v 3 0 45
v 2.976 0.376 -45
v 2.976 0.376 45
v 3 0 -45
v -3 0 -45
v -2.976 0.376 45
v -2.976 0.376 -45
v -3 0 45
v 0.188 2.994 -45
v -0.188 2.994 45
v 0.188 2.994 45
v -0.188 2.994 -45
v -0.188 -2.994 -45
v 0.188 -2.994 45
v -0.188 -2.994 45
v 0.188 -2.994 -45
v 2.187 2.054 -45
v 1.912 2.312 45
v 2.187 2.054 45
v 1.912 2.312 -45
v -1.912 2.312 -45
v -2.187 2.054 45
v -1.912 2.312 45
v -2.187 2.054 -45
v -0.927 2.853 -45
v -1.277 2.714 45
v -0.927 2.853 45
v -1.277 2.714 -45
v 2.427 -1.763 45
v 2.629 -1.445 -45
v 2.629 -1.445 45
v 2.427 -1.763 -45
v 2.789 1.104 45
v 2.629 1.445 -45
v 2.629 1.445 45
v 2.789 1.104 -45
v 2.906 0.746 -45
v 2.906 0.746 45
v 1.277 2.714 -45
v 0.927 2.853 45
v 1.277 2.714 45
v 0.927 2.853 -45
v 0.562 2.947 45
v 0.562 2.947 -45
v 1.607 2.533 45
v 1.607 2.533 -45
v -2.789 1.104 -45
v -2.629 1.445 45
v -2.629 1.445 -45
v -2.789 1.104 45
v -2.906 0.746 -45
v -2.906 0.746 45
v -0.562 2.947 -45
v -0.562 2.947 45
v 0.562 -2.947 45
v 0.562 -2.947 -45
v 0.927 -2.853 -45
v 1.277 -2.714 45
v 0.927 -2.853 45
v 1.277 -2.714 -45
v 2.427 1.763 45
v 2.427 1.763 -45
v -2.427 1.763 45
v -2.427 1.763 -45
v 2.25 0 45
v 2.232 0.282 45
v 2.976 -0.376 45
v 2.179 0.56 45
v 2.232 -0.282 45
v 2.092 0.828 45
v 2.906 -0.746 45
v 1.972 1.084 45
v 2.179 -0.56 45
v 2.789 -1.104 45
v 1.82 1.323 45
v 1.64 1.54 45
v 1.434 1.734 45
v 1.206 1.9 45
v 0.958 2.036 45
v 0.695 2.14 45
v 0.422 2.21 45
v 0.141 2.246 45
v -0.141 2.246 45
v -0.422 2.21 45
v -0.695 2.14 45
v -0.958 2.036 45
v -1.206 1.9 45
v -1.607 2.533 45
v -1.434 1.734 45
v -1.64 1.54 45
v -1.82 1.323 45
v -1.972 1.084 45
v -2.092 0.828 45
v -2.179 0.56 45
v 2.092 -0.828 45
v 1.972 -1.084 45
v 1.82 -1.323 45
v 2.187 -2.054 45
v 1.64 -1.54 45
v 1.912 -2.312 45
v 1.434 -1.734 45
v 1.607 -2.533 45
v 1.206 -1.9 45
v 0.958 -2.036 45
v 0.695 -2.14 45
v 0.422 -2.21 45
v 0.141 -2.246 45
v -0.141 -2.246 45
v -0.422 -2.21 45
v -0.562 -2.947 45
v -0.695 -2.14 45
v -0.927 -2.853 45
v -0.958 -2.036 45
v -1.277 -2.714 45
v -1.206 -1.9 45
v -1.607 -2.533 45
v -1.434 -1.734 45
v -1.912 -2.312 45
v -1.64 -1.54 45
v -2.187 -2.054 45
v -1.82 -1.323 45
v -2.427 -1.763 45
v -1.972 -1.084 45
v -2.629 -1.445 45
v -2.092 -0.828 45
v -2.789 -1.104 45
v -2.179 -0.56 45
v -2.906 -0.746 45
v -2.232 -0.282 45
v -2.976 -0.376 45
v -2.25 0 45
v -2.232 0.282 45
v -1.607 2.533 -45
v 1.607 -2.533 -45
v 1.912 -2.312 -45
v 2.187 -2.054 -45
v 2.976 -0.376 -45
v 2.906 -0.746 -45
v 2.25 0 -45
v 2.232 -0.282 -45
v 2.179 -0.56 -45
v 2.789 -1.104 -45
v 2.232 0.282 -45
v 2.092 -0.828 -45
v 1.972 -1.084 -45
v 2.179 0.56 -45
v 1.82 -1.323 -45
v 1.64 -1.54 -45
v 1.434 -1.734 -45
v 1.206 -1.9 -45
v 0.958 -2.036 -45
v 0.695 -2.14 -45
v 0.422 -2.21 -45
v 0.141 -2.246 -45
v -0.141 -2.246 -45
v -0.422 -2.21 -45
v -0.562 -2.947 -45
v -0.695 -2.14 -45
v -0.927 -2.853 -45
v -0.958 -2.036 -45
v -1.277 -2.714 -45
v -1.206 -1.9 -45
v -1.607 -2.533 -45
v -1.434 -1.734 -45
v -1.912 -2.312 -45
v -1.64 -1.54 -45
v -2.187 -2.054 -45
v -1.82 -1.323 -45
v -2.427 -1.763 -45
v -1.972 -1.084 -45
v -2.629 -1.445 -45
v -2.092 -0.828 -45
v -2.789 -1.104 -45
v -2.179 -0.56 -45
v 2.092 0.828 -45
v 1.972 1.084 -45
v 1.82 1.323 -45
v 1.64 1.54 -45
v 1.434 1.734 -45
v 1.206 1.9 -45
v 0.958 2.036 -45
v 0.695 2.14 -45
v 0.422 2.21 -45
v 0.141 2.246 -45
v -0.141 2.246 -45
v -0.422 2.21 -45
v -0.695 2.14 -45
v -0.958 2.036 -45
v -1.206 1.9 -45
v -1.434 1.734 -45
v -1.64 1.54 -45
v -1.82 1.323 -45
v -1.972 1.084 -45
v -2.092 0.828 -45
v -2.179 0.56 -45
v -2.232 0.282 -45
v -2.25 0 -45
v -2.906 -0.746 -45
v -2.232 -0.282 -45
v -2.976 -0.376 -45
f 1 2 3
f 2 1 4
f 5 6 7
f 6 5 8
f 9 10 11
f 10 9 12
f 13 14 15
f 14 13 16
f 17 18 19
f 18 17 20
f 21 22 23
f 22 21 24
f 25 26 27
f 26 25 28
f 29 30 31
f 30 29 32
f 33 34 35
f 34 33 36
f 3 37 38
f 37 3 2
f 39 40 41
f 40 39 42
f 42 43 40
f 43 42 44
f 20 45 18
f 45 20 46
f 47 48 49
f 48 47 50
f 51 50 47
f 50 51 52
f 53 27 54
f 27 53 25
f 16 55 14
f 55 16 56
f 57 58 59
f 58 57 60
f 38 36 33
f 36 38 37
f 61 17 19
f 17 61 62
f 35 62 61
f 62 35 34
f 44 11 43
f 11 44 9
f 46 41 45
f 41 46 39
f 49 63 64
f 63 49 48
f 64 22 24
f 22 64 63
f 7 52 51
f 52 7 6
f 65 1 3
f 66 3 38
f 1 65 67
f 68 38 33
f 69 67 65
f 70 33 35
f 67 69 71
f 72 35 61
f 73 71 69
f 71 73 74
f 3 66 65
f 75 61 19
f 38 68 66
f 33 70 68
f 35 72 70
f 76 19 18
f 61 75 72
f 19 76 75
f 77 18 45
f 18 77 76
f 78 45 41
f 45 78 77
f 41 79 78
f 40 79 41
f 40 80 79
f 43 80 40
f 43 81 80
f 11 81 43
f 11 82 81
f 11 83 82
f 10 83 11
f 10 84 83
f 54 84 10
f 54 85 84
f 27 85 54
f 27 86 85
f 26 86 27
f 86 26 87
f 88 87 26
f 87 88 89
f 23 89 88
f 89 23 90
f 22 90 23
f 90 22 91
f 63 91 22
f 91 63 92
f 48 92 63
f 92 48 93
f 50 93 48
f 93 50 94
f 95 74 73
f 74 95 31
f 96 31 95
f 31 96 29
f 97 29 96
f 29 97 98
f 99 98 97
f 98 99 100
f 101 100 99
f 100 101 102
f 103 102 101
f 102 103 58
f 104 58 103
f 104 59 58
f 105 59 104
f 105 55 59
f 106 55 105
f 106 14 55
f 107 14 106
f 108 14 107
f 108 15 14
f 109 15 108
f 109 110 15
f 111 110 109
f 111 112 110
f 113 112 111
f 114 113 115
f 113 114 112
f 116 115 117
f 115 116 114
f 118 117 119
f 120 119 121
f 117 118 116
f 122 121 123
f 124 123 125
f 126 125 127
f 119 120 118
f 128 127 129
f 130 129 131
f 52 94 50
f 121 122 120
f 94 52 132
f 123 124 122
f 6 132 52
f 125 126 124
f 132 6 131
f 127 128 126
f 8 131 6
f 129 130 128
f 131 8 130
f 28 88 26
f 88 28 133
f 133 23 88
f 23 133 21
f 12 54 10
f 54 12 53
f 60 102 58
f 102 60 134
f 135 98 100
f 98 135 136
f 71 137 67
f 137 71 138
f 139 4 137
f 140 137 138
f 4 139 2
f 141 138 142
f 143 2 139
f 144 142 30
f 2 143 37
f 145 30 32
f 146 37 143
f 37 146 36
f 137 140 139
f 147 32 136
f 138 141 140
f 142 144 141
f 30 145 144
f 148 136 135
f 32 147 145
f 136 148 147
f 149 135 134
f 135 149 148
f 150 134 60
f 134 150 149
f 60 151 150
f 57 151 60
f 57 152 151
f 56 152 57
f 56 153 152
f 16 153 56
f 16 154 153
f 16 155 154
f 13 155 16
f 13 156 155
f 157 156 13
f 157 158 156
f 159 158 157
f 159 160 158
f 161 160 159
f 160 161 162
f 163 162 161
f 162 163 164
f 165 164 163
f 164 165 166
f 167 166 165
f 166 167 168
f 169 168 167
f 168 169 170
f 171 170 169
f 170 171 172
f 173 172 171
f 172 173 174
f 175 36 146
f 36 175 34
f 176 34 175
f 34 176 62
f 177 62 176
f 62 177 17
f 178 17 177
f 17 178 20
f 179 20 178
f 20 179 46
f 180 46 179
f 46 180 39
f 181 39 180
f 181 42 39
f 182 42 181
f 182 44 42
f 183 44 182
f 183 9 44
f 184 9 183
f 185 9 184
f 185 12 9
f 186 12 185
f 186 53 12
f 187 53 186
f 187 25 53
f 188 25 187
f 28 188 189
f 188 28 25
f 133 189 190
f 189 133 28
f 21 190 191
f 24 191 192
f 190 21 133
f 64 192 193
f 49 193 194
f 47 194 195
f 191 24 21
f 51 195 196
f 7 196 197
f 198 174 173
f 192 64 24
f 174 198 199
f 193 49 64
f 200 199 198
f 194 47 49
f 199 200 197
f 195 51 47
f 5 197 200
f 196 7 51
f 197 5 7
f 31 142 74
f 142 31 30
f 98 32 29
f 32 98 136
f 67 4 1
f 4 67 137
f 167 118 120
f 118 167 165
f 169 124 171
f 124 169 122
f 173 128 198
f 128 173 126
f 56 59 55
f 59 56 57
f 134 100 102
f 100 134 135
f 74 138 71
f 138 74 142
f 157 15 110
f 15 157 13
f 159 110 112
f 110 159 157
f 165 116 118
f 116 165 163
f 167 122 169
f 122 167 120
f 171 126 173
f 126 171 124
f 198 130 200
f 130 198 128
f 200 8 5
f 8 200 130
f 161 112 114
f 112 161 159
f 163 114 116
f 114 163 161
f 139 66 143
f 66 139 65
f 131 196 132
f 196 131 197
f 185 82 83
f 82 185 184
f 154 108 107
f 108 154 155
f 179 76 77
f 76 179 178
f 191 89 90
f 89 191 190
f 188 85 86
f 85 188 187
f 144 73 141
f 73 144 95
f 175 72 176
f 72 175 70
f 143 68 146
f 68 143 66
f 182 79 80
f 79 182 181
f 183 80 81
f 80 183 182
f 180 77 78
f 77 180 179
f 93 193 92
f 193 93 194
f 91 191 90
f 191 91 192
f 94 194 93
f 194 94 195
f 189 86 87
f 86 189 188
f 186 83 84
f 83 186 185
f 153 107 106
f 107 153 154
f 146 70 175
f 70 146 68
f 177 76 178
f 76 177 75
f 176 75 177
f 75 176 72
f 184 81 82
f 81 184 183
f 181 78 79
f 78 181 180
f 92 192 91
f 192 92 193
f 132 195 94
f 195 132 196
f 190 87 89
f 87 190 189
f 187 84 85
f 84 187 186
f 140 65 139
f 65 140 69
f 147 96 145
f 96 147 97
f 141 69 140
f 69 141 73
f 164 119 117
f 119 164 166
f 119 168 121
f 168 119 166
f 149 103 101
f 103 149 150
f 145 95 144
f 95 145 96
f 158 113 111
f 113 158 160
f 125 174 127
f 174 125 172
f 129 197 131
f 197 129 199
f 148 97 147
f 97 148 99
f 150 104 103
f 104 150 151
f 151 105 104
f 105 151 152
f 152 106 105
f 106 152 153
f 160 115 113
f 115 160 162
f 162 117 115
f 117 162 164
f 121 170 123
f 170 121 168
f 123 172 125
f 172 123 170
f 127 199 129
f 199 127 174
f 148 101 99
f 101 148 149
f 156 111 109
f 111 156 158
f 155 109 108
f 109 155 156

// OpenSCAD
$fn = 50;


difference() {
	union() {
		translate(v = [0, 0, -45.0000000000]) {
			cylinder(h = 90, r = 3.0000000000);
		}
	}
	union() {
		translate(v = [0, 0, -100.0000000000]) {
			cylinder(h = 200, r = 2.2500000000);
		}
	}
}
